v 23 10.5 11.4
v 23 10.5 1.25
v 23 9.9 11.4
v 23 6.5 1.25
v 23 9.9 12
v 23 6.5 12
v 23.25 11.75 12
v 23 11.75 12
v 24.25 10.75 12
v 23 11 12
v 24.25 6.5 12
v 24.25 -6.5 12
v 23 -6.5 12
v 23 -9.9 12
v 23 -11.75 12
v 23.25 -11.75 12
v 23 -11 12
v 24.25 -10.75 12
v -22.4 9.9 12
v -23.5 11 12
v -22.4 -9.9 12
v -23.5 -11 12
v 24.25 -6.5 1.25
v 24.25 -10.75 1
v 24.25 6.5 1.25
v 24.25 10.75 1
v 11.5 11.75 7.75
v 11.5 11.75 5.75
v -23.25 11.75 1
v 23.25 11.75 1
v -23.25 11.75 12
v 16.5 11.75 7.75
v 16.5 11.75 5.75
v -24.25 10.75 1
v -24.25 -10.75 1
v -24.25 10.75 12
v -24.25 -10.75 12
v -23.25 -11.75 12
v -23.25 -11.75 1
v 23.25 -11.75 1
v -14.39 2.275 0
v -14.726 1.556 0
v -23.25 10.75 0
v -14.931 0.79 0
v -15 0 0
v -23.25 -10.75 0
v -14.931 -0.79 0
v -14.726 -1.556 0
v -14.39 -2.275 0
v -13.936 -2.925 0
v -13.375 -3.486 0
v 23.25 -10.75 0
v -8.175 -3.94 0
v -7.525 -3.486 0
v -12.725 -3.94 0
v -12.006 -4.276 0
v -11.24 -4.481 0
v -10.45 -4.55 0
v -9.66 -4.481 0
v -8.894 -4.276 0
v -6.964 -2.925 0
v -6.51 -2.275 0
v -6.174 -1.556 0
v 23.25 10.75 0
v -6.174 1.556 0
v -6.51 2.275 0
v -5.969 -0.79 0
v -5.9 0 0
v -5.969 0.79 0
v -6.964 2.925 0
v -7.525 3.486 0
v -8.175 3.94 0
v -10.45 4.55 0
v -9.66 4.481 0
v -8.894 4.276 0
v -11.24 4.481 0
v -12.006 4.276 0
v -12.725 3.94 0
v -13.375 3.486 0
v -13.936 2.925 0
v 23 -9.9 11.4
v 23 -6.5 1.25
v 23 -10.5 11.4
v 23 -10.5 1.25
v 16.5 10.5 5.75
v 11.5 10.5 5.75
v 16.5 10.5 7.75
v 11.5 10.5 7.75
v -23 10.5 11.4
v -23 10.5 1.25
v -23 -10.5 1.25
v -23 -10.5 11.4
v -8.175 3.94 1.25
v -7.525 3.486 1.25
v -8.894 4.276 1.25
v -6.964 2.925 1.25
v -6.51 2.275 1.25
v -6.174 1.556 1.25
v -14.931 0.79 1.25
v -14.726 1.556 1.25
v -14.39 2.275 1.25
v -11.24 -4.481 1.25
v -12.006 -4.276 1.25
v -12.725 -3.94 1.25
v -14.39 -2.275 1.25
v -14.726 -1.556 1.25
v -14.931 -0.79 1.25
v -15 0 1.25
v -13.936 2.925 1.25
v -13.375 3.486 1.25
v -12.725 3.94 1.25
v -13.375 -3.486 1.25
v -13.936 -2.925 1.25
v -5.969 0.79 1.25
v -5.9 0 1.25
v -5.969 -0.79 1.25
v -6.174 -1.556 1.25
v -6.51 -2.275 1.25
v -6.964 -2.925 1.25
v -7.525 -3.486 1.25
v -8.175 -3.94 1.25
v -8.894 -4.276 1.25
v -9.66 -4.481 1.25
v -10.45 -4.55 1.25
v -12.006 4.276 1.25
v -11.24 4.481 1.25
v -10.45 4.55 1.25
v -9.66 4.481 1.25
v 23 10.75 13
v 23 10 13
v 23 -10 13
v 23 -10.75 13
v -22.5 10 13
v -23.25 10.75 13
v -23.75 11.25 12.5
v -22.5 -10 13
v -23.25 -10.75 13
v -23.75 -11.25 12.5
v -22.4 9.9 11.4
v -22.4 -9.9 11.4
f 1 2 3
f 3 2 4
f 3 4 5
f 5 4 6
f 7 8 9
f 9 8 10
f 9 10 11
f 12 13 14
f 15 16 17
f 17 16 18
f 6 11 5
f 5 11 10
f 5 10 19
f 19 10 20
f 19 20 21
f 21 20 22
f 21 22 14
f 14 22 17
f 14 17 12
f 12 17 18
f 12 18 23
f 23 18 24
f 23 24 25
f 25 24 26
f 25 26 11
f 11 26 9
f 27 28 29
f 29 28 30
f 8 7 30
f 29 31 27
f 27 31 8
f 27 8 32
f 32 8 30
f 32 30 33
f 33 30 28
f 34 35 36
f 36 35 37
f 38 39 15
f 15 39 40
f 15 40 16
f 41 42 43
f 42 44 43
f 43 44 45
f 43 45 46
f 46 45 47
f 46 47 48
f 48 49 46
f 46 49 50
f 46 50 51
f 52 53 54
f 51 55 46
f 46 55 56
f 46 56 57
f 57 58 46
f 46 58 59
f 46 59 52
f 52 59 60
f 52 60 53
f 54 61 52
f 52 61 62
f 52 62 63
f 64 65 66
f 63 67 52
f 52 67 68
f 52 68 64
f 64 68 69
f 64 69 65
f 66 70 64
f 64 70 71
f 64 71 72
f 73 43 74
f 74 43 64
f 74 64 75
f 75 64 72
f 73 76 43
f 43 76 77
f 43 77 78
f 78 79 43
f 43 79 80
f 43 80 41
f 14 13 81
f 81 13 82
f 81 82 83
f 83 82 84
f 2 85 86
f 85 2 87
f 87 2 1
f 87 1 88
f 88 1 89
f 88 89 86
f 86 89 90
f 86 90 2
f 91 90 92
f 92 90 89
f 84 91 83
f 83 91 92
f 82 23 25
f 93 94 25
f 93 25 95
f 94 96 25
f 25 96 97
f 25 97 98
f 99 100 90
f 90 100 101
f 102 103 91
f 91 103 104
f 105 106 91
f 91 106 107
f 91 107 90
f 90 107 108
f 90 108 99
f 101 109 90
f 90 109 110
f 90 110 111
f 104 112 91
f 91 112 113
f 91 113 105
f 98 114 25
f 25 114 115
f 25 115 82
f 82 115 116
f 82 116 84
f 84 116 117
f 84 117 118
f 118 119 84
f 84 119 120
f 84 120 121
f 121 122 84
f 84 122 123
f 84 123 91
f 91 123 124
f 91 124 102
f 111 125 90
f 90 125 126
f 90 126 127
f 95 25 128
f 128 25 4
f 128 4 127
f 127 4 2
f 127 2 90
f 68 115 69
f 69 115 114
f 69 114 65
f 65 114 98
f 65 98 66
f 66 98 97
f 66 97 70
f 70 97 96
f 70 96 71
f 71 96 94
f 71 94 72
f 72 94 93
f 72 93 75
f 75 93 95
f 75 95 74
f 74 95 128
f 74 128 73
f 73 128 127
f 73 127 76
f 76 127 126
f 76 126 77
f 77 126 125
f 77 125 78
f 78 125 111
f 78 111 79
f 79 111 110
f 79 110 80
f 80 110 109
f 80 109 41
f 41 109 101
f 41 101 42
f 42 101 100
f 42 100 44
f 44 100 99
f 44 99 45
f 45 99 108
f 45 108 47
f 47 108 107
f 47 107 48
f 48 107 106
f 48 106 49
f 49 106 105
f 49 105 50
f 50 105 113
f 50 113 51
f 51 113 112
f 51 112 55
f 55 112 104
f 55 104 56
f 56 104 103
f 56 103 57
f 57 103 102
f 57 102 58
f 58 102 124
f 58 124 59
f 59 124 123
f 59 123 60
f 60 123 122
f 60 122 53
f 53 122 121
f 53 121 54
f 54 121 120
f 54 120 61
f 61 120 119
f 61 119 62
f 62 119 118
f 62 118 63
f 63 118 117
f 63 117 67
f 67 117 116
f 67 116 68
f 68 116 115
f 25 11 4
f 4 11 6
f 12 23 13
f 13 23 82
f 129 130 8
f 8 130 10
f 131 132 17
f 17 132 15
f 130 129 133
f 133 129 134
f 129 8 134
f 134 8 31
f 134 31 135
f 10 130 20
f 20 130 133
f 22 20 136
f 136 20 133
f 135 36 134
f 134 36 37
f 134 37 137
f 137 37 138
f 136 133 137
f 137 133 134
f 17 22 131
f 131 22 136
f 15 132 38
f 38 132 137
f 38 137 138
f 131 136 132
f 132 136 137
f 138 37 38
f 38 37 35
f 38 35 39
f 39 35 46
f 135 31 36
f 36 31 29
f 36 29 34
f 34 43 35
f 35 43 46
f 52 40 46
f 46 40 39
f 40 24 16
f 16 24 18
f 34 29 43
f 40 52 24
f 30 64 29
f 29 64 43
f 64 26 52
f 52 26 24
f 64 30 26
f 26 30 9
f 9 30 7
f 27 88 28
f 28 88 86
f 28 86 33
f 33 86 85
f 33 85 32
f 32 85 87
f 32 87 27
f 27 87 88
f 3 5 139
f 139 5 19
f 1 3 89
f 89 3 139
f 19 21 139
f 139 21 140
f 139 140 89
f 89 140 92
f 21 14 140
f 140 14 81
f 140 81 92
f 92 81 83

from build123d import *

# Parameters (mm, degrees)
SKETCH1_W               = 48.5
SKETCH1_H               = 23.5
BOSS_EXTRUDE1_DEPTH     = 12
SHELL1_T                = -1.25
SKETCH2_R               = 4.55
CUT_EXTRUDE1_DEPTH      = 11.75
CUT_EXTRUDE1_DEPTH_BACK = 2.25
SKETCH3_W               = 10.75
SKETCH3_H               = 13
CUT_EXTRUDE2_DEPTH      = 3
CHAMFER1_SIZE           = 1
CUT_EXTRUDE3_REACH      = 25.5
SKETCH5_W               = 5
SKETCH5_H               = 2
SKETCH6_W               = 0.6
SKETCH6_H               = 0.6


with BuildPart() as part:
    # Sketch1 → Boss-Extrude1 (new body)
    with BuildSketch(Plane.XY):
        Rectangle(SKETCH1_W, SKETCH1_H)
    extrude(amount=BOSS_EXTRUDE1_DEPTH)

    # Shell1
    shell1_openings = [part.faces().sort_by_distance(p)[0] for p in [
        (0, 0, 12),
    ]]
    offset(amount=SHELL1_T, openings=shell1_openings, kind=Kind.INTERSECTION)

    # Sketch2 → Cut-Extrude1 (cut, two sides)
    with BuildSketch(Plane.XY.offset(1.25)) as cut_extrude1_sk:
        with Locations((-10.45, 0)):
            Circle(SKETCH2_R)
    extrude(amount=CUT_EXTRUDE1_DEPTH, mode=Mode.SUBTRACT)
    extrude(cut_extrude1_sk.sketch, amount=-CUT_EXTRUDE1_DEPTH_BACK, mode=Mode.SUBTRACT)

    # Sketch3 → Cut-Extrude2 (cut)
    with BuildSketch(Plane(origin=(24.25, 0, 0), x_dir=(0, 0, -1), z_dir=(1, 0, 0))):
        with Locations((-6.625, 0)):
            Rectangle(SKETCH3_W, SKETCH3_H)
    extrude(amount=-CUT_EXTRUDE2_DEPTH, mode=Mode.SUBTRACT)

    # Sweep2: sweep along a curve in space
    with BuildLine() as sweep2_path:
        Line((23, -10.5, 12), (-23, -10.5, 12))
        Line((-23, -10.5, 12), (-23, 10.5, 12))
        Line((-23, 10.5, 12), (23, 10.5, 12))
    # Sketch4 → Sweep2 (sweep)
    with BuildSketch(Plane(origin=(23, 0, 0), x_dir=(0, 0, -1), z_dir=(1, 0, 0))):
        Polygon((-12, -11.75), (-13, -10.75), (-13, -10), (-12, -11), align=None)
    sweep(path=sweep2_path.line, transition=Transition.RIGHT)

    # Chamfer1
    chamfer1_edges = [part.edges().sort_by_distance(p)[0] for p in [
        (0, -11.75, 0),
        (-24.25, 0, 0),
        (0, 11.75, 0),
        (24.25, 0, 0),
        (24.25, -11.75, 6),
        (-24.25, -11.75, 6),
        (-24.25, 11.75, 6),
        (24.25, 11.75, 6),
    ]]
    chamfer(chamfer1_edges, length=CHAMFER1_SIZE)

    # Sketch5 → Cut-Extrude3 (cut, up to next)
    with BuildSketch(Plane(origin=(0, 11.75, 0), x_dir=(1, 0, 0), z_dir=(0, 1, 0)), mode=Mode.PRIVATE) as cut_extrude3_sk1:
        with Locations((14, -6.75)):
            Rectangle(SKETCH5_W, SKETCH5_H)
    cut_extrude3_tool1 = extrude(cut_extrude3_sk1.sketch, amount=-CUT_EXTRUDE3_REACH, mode=Mode.PRIVATE) & part.part
    add(cut_extrude3_tool1.solids().sort_by_distance((14, 11.75, 6.75))[0], mode=Mode.SUBTRACT)

    # Sweep3: sweep along a curve in space
    with BuildLine() as sweep3_path:
        Line((23, -10.5, 12), (-23, -10.5, 12))
        Line((-23, -10.5, 12), (-23, 10.5, 12))
        Line((-23, 10.5, 12), (23, 10.5, 12))
    # Sketch6 → Sweep3 (sweep)
    with BuildSketch(Plane.ZY.offset(-23)):
        with Locations((11.7, -10.2)):
            Rectangle(SKETCH6_W, SKETCH6_H)
    sweep(path=sweep3_path.line, transition=Transition.RIGHT)


solid = part.part
